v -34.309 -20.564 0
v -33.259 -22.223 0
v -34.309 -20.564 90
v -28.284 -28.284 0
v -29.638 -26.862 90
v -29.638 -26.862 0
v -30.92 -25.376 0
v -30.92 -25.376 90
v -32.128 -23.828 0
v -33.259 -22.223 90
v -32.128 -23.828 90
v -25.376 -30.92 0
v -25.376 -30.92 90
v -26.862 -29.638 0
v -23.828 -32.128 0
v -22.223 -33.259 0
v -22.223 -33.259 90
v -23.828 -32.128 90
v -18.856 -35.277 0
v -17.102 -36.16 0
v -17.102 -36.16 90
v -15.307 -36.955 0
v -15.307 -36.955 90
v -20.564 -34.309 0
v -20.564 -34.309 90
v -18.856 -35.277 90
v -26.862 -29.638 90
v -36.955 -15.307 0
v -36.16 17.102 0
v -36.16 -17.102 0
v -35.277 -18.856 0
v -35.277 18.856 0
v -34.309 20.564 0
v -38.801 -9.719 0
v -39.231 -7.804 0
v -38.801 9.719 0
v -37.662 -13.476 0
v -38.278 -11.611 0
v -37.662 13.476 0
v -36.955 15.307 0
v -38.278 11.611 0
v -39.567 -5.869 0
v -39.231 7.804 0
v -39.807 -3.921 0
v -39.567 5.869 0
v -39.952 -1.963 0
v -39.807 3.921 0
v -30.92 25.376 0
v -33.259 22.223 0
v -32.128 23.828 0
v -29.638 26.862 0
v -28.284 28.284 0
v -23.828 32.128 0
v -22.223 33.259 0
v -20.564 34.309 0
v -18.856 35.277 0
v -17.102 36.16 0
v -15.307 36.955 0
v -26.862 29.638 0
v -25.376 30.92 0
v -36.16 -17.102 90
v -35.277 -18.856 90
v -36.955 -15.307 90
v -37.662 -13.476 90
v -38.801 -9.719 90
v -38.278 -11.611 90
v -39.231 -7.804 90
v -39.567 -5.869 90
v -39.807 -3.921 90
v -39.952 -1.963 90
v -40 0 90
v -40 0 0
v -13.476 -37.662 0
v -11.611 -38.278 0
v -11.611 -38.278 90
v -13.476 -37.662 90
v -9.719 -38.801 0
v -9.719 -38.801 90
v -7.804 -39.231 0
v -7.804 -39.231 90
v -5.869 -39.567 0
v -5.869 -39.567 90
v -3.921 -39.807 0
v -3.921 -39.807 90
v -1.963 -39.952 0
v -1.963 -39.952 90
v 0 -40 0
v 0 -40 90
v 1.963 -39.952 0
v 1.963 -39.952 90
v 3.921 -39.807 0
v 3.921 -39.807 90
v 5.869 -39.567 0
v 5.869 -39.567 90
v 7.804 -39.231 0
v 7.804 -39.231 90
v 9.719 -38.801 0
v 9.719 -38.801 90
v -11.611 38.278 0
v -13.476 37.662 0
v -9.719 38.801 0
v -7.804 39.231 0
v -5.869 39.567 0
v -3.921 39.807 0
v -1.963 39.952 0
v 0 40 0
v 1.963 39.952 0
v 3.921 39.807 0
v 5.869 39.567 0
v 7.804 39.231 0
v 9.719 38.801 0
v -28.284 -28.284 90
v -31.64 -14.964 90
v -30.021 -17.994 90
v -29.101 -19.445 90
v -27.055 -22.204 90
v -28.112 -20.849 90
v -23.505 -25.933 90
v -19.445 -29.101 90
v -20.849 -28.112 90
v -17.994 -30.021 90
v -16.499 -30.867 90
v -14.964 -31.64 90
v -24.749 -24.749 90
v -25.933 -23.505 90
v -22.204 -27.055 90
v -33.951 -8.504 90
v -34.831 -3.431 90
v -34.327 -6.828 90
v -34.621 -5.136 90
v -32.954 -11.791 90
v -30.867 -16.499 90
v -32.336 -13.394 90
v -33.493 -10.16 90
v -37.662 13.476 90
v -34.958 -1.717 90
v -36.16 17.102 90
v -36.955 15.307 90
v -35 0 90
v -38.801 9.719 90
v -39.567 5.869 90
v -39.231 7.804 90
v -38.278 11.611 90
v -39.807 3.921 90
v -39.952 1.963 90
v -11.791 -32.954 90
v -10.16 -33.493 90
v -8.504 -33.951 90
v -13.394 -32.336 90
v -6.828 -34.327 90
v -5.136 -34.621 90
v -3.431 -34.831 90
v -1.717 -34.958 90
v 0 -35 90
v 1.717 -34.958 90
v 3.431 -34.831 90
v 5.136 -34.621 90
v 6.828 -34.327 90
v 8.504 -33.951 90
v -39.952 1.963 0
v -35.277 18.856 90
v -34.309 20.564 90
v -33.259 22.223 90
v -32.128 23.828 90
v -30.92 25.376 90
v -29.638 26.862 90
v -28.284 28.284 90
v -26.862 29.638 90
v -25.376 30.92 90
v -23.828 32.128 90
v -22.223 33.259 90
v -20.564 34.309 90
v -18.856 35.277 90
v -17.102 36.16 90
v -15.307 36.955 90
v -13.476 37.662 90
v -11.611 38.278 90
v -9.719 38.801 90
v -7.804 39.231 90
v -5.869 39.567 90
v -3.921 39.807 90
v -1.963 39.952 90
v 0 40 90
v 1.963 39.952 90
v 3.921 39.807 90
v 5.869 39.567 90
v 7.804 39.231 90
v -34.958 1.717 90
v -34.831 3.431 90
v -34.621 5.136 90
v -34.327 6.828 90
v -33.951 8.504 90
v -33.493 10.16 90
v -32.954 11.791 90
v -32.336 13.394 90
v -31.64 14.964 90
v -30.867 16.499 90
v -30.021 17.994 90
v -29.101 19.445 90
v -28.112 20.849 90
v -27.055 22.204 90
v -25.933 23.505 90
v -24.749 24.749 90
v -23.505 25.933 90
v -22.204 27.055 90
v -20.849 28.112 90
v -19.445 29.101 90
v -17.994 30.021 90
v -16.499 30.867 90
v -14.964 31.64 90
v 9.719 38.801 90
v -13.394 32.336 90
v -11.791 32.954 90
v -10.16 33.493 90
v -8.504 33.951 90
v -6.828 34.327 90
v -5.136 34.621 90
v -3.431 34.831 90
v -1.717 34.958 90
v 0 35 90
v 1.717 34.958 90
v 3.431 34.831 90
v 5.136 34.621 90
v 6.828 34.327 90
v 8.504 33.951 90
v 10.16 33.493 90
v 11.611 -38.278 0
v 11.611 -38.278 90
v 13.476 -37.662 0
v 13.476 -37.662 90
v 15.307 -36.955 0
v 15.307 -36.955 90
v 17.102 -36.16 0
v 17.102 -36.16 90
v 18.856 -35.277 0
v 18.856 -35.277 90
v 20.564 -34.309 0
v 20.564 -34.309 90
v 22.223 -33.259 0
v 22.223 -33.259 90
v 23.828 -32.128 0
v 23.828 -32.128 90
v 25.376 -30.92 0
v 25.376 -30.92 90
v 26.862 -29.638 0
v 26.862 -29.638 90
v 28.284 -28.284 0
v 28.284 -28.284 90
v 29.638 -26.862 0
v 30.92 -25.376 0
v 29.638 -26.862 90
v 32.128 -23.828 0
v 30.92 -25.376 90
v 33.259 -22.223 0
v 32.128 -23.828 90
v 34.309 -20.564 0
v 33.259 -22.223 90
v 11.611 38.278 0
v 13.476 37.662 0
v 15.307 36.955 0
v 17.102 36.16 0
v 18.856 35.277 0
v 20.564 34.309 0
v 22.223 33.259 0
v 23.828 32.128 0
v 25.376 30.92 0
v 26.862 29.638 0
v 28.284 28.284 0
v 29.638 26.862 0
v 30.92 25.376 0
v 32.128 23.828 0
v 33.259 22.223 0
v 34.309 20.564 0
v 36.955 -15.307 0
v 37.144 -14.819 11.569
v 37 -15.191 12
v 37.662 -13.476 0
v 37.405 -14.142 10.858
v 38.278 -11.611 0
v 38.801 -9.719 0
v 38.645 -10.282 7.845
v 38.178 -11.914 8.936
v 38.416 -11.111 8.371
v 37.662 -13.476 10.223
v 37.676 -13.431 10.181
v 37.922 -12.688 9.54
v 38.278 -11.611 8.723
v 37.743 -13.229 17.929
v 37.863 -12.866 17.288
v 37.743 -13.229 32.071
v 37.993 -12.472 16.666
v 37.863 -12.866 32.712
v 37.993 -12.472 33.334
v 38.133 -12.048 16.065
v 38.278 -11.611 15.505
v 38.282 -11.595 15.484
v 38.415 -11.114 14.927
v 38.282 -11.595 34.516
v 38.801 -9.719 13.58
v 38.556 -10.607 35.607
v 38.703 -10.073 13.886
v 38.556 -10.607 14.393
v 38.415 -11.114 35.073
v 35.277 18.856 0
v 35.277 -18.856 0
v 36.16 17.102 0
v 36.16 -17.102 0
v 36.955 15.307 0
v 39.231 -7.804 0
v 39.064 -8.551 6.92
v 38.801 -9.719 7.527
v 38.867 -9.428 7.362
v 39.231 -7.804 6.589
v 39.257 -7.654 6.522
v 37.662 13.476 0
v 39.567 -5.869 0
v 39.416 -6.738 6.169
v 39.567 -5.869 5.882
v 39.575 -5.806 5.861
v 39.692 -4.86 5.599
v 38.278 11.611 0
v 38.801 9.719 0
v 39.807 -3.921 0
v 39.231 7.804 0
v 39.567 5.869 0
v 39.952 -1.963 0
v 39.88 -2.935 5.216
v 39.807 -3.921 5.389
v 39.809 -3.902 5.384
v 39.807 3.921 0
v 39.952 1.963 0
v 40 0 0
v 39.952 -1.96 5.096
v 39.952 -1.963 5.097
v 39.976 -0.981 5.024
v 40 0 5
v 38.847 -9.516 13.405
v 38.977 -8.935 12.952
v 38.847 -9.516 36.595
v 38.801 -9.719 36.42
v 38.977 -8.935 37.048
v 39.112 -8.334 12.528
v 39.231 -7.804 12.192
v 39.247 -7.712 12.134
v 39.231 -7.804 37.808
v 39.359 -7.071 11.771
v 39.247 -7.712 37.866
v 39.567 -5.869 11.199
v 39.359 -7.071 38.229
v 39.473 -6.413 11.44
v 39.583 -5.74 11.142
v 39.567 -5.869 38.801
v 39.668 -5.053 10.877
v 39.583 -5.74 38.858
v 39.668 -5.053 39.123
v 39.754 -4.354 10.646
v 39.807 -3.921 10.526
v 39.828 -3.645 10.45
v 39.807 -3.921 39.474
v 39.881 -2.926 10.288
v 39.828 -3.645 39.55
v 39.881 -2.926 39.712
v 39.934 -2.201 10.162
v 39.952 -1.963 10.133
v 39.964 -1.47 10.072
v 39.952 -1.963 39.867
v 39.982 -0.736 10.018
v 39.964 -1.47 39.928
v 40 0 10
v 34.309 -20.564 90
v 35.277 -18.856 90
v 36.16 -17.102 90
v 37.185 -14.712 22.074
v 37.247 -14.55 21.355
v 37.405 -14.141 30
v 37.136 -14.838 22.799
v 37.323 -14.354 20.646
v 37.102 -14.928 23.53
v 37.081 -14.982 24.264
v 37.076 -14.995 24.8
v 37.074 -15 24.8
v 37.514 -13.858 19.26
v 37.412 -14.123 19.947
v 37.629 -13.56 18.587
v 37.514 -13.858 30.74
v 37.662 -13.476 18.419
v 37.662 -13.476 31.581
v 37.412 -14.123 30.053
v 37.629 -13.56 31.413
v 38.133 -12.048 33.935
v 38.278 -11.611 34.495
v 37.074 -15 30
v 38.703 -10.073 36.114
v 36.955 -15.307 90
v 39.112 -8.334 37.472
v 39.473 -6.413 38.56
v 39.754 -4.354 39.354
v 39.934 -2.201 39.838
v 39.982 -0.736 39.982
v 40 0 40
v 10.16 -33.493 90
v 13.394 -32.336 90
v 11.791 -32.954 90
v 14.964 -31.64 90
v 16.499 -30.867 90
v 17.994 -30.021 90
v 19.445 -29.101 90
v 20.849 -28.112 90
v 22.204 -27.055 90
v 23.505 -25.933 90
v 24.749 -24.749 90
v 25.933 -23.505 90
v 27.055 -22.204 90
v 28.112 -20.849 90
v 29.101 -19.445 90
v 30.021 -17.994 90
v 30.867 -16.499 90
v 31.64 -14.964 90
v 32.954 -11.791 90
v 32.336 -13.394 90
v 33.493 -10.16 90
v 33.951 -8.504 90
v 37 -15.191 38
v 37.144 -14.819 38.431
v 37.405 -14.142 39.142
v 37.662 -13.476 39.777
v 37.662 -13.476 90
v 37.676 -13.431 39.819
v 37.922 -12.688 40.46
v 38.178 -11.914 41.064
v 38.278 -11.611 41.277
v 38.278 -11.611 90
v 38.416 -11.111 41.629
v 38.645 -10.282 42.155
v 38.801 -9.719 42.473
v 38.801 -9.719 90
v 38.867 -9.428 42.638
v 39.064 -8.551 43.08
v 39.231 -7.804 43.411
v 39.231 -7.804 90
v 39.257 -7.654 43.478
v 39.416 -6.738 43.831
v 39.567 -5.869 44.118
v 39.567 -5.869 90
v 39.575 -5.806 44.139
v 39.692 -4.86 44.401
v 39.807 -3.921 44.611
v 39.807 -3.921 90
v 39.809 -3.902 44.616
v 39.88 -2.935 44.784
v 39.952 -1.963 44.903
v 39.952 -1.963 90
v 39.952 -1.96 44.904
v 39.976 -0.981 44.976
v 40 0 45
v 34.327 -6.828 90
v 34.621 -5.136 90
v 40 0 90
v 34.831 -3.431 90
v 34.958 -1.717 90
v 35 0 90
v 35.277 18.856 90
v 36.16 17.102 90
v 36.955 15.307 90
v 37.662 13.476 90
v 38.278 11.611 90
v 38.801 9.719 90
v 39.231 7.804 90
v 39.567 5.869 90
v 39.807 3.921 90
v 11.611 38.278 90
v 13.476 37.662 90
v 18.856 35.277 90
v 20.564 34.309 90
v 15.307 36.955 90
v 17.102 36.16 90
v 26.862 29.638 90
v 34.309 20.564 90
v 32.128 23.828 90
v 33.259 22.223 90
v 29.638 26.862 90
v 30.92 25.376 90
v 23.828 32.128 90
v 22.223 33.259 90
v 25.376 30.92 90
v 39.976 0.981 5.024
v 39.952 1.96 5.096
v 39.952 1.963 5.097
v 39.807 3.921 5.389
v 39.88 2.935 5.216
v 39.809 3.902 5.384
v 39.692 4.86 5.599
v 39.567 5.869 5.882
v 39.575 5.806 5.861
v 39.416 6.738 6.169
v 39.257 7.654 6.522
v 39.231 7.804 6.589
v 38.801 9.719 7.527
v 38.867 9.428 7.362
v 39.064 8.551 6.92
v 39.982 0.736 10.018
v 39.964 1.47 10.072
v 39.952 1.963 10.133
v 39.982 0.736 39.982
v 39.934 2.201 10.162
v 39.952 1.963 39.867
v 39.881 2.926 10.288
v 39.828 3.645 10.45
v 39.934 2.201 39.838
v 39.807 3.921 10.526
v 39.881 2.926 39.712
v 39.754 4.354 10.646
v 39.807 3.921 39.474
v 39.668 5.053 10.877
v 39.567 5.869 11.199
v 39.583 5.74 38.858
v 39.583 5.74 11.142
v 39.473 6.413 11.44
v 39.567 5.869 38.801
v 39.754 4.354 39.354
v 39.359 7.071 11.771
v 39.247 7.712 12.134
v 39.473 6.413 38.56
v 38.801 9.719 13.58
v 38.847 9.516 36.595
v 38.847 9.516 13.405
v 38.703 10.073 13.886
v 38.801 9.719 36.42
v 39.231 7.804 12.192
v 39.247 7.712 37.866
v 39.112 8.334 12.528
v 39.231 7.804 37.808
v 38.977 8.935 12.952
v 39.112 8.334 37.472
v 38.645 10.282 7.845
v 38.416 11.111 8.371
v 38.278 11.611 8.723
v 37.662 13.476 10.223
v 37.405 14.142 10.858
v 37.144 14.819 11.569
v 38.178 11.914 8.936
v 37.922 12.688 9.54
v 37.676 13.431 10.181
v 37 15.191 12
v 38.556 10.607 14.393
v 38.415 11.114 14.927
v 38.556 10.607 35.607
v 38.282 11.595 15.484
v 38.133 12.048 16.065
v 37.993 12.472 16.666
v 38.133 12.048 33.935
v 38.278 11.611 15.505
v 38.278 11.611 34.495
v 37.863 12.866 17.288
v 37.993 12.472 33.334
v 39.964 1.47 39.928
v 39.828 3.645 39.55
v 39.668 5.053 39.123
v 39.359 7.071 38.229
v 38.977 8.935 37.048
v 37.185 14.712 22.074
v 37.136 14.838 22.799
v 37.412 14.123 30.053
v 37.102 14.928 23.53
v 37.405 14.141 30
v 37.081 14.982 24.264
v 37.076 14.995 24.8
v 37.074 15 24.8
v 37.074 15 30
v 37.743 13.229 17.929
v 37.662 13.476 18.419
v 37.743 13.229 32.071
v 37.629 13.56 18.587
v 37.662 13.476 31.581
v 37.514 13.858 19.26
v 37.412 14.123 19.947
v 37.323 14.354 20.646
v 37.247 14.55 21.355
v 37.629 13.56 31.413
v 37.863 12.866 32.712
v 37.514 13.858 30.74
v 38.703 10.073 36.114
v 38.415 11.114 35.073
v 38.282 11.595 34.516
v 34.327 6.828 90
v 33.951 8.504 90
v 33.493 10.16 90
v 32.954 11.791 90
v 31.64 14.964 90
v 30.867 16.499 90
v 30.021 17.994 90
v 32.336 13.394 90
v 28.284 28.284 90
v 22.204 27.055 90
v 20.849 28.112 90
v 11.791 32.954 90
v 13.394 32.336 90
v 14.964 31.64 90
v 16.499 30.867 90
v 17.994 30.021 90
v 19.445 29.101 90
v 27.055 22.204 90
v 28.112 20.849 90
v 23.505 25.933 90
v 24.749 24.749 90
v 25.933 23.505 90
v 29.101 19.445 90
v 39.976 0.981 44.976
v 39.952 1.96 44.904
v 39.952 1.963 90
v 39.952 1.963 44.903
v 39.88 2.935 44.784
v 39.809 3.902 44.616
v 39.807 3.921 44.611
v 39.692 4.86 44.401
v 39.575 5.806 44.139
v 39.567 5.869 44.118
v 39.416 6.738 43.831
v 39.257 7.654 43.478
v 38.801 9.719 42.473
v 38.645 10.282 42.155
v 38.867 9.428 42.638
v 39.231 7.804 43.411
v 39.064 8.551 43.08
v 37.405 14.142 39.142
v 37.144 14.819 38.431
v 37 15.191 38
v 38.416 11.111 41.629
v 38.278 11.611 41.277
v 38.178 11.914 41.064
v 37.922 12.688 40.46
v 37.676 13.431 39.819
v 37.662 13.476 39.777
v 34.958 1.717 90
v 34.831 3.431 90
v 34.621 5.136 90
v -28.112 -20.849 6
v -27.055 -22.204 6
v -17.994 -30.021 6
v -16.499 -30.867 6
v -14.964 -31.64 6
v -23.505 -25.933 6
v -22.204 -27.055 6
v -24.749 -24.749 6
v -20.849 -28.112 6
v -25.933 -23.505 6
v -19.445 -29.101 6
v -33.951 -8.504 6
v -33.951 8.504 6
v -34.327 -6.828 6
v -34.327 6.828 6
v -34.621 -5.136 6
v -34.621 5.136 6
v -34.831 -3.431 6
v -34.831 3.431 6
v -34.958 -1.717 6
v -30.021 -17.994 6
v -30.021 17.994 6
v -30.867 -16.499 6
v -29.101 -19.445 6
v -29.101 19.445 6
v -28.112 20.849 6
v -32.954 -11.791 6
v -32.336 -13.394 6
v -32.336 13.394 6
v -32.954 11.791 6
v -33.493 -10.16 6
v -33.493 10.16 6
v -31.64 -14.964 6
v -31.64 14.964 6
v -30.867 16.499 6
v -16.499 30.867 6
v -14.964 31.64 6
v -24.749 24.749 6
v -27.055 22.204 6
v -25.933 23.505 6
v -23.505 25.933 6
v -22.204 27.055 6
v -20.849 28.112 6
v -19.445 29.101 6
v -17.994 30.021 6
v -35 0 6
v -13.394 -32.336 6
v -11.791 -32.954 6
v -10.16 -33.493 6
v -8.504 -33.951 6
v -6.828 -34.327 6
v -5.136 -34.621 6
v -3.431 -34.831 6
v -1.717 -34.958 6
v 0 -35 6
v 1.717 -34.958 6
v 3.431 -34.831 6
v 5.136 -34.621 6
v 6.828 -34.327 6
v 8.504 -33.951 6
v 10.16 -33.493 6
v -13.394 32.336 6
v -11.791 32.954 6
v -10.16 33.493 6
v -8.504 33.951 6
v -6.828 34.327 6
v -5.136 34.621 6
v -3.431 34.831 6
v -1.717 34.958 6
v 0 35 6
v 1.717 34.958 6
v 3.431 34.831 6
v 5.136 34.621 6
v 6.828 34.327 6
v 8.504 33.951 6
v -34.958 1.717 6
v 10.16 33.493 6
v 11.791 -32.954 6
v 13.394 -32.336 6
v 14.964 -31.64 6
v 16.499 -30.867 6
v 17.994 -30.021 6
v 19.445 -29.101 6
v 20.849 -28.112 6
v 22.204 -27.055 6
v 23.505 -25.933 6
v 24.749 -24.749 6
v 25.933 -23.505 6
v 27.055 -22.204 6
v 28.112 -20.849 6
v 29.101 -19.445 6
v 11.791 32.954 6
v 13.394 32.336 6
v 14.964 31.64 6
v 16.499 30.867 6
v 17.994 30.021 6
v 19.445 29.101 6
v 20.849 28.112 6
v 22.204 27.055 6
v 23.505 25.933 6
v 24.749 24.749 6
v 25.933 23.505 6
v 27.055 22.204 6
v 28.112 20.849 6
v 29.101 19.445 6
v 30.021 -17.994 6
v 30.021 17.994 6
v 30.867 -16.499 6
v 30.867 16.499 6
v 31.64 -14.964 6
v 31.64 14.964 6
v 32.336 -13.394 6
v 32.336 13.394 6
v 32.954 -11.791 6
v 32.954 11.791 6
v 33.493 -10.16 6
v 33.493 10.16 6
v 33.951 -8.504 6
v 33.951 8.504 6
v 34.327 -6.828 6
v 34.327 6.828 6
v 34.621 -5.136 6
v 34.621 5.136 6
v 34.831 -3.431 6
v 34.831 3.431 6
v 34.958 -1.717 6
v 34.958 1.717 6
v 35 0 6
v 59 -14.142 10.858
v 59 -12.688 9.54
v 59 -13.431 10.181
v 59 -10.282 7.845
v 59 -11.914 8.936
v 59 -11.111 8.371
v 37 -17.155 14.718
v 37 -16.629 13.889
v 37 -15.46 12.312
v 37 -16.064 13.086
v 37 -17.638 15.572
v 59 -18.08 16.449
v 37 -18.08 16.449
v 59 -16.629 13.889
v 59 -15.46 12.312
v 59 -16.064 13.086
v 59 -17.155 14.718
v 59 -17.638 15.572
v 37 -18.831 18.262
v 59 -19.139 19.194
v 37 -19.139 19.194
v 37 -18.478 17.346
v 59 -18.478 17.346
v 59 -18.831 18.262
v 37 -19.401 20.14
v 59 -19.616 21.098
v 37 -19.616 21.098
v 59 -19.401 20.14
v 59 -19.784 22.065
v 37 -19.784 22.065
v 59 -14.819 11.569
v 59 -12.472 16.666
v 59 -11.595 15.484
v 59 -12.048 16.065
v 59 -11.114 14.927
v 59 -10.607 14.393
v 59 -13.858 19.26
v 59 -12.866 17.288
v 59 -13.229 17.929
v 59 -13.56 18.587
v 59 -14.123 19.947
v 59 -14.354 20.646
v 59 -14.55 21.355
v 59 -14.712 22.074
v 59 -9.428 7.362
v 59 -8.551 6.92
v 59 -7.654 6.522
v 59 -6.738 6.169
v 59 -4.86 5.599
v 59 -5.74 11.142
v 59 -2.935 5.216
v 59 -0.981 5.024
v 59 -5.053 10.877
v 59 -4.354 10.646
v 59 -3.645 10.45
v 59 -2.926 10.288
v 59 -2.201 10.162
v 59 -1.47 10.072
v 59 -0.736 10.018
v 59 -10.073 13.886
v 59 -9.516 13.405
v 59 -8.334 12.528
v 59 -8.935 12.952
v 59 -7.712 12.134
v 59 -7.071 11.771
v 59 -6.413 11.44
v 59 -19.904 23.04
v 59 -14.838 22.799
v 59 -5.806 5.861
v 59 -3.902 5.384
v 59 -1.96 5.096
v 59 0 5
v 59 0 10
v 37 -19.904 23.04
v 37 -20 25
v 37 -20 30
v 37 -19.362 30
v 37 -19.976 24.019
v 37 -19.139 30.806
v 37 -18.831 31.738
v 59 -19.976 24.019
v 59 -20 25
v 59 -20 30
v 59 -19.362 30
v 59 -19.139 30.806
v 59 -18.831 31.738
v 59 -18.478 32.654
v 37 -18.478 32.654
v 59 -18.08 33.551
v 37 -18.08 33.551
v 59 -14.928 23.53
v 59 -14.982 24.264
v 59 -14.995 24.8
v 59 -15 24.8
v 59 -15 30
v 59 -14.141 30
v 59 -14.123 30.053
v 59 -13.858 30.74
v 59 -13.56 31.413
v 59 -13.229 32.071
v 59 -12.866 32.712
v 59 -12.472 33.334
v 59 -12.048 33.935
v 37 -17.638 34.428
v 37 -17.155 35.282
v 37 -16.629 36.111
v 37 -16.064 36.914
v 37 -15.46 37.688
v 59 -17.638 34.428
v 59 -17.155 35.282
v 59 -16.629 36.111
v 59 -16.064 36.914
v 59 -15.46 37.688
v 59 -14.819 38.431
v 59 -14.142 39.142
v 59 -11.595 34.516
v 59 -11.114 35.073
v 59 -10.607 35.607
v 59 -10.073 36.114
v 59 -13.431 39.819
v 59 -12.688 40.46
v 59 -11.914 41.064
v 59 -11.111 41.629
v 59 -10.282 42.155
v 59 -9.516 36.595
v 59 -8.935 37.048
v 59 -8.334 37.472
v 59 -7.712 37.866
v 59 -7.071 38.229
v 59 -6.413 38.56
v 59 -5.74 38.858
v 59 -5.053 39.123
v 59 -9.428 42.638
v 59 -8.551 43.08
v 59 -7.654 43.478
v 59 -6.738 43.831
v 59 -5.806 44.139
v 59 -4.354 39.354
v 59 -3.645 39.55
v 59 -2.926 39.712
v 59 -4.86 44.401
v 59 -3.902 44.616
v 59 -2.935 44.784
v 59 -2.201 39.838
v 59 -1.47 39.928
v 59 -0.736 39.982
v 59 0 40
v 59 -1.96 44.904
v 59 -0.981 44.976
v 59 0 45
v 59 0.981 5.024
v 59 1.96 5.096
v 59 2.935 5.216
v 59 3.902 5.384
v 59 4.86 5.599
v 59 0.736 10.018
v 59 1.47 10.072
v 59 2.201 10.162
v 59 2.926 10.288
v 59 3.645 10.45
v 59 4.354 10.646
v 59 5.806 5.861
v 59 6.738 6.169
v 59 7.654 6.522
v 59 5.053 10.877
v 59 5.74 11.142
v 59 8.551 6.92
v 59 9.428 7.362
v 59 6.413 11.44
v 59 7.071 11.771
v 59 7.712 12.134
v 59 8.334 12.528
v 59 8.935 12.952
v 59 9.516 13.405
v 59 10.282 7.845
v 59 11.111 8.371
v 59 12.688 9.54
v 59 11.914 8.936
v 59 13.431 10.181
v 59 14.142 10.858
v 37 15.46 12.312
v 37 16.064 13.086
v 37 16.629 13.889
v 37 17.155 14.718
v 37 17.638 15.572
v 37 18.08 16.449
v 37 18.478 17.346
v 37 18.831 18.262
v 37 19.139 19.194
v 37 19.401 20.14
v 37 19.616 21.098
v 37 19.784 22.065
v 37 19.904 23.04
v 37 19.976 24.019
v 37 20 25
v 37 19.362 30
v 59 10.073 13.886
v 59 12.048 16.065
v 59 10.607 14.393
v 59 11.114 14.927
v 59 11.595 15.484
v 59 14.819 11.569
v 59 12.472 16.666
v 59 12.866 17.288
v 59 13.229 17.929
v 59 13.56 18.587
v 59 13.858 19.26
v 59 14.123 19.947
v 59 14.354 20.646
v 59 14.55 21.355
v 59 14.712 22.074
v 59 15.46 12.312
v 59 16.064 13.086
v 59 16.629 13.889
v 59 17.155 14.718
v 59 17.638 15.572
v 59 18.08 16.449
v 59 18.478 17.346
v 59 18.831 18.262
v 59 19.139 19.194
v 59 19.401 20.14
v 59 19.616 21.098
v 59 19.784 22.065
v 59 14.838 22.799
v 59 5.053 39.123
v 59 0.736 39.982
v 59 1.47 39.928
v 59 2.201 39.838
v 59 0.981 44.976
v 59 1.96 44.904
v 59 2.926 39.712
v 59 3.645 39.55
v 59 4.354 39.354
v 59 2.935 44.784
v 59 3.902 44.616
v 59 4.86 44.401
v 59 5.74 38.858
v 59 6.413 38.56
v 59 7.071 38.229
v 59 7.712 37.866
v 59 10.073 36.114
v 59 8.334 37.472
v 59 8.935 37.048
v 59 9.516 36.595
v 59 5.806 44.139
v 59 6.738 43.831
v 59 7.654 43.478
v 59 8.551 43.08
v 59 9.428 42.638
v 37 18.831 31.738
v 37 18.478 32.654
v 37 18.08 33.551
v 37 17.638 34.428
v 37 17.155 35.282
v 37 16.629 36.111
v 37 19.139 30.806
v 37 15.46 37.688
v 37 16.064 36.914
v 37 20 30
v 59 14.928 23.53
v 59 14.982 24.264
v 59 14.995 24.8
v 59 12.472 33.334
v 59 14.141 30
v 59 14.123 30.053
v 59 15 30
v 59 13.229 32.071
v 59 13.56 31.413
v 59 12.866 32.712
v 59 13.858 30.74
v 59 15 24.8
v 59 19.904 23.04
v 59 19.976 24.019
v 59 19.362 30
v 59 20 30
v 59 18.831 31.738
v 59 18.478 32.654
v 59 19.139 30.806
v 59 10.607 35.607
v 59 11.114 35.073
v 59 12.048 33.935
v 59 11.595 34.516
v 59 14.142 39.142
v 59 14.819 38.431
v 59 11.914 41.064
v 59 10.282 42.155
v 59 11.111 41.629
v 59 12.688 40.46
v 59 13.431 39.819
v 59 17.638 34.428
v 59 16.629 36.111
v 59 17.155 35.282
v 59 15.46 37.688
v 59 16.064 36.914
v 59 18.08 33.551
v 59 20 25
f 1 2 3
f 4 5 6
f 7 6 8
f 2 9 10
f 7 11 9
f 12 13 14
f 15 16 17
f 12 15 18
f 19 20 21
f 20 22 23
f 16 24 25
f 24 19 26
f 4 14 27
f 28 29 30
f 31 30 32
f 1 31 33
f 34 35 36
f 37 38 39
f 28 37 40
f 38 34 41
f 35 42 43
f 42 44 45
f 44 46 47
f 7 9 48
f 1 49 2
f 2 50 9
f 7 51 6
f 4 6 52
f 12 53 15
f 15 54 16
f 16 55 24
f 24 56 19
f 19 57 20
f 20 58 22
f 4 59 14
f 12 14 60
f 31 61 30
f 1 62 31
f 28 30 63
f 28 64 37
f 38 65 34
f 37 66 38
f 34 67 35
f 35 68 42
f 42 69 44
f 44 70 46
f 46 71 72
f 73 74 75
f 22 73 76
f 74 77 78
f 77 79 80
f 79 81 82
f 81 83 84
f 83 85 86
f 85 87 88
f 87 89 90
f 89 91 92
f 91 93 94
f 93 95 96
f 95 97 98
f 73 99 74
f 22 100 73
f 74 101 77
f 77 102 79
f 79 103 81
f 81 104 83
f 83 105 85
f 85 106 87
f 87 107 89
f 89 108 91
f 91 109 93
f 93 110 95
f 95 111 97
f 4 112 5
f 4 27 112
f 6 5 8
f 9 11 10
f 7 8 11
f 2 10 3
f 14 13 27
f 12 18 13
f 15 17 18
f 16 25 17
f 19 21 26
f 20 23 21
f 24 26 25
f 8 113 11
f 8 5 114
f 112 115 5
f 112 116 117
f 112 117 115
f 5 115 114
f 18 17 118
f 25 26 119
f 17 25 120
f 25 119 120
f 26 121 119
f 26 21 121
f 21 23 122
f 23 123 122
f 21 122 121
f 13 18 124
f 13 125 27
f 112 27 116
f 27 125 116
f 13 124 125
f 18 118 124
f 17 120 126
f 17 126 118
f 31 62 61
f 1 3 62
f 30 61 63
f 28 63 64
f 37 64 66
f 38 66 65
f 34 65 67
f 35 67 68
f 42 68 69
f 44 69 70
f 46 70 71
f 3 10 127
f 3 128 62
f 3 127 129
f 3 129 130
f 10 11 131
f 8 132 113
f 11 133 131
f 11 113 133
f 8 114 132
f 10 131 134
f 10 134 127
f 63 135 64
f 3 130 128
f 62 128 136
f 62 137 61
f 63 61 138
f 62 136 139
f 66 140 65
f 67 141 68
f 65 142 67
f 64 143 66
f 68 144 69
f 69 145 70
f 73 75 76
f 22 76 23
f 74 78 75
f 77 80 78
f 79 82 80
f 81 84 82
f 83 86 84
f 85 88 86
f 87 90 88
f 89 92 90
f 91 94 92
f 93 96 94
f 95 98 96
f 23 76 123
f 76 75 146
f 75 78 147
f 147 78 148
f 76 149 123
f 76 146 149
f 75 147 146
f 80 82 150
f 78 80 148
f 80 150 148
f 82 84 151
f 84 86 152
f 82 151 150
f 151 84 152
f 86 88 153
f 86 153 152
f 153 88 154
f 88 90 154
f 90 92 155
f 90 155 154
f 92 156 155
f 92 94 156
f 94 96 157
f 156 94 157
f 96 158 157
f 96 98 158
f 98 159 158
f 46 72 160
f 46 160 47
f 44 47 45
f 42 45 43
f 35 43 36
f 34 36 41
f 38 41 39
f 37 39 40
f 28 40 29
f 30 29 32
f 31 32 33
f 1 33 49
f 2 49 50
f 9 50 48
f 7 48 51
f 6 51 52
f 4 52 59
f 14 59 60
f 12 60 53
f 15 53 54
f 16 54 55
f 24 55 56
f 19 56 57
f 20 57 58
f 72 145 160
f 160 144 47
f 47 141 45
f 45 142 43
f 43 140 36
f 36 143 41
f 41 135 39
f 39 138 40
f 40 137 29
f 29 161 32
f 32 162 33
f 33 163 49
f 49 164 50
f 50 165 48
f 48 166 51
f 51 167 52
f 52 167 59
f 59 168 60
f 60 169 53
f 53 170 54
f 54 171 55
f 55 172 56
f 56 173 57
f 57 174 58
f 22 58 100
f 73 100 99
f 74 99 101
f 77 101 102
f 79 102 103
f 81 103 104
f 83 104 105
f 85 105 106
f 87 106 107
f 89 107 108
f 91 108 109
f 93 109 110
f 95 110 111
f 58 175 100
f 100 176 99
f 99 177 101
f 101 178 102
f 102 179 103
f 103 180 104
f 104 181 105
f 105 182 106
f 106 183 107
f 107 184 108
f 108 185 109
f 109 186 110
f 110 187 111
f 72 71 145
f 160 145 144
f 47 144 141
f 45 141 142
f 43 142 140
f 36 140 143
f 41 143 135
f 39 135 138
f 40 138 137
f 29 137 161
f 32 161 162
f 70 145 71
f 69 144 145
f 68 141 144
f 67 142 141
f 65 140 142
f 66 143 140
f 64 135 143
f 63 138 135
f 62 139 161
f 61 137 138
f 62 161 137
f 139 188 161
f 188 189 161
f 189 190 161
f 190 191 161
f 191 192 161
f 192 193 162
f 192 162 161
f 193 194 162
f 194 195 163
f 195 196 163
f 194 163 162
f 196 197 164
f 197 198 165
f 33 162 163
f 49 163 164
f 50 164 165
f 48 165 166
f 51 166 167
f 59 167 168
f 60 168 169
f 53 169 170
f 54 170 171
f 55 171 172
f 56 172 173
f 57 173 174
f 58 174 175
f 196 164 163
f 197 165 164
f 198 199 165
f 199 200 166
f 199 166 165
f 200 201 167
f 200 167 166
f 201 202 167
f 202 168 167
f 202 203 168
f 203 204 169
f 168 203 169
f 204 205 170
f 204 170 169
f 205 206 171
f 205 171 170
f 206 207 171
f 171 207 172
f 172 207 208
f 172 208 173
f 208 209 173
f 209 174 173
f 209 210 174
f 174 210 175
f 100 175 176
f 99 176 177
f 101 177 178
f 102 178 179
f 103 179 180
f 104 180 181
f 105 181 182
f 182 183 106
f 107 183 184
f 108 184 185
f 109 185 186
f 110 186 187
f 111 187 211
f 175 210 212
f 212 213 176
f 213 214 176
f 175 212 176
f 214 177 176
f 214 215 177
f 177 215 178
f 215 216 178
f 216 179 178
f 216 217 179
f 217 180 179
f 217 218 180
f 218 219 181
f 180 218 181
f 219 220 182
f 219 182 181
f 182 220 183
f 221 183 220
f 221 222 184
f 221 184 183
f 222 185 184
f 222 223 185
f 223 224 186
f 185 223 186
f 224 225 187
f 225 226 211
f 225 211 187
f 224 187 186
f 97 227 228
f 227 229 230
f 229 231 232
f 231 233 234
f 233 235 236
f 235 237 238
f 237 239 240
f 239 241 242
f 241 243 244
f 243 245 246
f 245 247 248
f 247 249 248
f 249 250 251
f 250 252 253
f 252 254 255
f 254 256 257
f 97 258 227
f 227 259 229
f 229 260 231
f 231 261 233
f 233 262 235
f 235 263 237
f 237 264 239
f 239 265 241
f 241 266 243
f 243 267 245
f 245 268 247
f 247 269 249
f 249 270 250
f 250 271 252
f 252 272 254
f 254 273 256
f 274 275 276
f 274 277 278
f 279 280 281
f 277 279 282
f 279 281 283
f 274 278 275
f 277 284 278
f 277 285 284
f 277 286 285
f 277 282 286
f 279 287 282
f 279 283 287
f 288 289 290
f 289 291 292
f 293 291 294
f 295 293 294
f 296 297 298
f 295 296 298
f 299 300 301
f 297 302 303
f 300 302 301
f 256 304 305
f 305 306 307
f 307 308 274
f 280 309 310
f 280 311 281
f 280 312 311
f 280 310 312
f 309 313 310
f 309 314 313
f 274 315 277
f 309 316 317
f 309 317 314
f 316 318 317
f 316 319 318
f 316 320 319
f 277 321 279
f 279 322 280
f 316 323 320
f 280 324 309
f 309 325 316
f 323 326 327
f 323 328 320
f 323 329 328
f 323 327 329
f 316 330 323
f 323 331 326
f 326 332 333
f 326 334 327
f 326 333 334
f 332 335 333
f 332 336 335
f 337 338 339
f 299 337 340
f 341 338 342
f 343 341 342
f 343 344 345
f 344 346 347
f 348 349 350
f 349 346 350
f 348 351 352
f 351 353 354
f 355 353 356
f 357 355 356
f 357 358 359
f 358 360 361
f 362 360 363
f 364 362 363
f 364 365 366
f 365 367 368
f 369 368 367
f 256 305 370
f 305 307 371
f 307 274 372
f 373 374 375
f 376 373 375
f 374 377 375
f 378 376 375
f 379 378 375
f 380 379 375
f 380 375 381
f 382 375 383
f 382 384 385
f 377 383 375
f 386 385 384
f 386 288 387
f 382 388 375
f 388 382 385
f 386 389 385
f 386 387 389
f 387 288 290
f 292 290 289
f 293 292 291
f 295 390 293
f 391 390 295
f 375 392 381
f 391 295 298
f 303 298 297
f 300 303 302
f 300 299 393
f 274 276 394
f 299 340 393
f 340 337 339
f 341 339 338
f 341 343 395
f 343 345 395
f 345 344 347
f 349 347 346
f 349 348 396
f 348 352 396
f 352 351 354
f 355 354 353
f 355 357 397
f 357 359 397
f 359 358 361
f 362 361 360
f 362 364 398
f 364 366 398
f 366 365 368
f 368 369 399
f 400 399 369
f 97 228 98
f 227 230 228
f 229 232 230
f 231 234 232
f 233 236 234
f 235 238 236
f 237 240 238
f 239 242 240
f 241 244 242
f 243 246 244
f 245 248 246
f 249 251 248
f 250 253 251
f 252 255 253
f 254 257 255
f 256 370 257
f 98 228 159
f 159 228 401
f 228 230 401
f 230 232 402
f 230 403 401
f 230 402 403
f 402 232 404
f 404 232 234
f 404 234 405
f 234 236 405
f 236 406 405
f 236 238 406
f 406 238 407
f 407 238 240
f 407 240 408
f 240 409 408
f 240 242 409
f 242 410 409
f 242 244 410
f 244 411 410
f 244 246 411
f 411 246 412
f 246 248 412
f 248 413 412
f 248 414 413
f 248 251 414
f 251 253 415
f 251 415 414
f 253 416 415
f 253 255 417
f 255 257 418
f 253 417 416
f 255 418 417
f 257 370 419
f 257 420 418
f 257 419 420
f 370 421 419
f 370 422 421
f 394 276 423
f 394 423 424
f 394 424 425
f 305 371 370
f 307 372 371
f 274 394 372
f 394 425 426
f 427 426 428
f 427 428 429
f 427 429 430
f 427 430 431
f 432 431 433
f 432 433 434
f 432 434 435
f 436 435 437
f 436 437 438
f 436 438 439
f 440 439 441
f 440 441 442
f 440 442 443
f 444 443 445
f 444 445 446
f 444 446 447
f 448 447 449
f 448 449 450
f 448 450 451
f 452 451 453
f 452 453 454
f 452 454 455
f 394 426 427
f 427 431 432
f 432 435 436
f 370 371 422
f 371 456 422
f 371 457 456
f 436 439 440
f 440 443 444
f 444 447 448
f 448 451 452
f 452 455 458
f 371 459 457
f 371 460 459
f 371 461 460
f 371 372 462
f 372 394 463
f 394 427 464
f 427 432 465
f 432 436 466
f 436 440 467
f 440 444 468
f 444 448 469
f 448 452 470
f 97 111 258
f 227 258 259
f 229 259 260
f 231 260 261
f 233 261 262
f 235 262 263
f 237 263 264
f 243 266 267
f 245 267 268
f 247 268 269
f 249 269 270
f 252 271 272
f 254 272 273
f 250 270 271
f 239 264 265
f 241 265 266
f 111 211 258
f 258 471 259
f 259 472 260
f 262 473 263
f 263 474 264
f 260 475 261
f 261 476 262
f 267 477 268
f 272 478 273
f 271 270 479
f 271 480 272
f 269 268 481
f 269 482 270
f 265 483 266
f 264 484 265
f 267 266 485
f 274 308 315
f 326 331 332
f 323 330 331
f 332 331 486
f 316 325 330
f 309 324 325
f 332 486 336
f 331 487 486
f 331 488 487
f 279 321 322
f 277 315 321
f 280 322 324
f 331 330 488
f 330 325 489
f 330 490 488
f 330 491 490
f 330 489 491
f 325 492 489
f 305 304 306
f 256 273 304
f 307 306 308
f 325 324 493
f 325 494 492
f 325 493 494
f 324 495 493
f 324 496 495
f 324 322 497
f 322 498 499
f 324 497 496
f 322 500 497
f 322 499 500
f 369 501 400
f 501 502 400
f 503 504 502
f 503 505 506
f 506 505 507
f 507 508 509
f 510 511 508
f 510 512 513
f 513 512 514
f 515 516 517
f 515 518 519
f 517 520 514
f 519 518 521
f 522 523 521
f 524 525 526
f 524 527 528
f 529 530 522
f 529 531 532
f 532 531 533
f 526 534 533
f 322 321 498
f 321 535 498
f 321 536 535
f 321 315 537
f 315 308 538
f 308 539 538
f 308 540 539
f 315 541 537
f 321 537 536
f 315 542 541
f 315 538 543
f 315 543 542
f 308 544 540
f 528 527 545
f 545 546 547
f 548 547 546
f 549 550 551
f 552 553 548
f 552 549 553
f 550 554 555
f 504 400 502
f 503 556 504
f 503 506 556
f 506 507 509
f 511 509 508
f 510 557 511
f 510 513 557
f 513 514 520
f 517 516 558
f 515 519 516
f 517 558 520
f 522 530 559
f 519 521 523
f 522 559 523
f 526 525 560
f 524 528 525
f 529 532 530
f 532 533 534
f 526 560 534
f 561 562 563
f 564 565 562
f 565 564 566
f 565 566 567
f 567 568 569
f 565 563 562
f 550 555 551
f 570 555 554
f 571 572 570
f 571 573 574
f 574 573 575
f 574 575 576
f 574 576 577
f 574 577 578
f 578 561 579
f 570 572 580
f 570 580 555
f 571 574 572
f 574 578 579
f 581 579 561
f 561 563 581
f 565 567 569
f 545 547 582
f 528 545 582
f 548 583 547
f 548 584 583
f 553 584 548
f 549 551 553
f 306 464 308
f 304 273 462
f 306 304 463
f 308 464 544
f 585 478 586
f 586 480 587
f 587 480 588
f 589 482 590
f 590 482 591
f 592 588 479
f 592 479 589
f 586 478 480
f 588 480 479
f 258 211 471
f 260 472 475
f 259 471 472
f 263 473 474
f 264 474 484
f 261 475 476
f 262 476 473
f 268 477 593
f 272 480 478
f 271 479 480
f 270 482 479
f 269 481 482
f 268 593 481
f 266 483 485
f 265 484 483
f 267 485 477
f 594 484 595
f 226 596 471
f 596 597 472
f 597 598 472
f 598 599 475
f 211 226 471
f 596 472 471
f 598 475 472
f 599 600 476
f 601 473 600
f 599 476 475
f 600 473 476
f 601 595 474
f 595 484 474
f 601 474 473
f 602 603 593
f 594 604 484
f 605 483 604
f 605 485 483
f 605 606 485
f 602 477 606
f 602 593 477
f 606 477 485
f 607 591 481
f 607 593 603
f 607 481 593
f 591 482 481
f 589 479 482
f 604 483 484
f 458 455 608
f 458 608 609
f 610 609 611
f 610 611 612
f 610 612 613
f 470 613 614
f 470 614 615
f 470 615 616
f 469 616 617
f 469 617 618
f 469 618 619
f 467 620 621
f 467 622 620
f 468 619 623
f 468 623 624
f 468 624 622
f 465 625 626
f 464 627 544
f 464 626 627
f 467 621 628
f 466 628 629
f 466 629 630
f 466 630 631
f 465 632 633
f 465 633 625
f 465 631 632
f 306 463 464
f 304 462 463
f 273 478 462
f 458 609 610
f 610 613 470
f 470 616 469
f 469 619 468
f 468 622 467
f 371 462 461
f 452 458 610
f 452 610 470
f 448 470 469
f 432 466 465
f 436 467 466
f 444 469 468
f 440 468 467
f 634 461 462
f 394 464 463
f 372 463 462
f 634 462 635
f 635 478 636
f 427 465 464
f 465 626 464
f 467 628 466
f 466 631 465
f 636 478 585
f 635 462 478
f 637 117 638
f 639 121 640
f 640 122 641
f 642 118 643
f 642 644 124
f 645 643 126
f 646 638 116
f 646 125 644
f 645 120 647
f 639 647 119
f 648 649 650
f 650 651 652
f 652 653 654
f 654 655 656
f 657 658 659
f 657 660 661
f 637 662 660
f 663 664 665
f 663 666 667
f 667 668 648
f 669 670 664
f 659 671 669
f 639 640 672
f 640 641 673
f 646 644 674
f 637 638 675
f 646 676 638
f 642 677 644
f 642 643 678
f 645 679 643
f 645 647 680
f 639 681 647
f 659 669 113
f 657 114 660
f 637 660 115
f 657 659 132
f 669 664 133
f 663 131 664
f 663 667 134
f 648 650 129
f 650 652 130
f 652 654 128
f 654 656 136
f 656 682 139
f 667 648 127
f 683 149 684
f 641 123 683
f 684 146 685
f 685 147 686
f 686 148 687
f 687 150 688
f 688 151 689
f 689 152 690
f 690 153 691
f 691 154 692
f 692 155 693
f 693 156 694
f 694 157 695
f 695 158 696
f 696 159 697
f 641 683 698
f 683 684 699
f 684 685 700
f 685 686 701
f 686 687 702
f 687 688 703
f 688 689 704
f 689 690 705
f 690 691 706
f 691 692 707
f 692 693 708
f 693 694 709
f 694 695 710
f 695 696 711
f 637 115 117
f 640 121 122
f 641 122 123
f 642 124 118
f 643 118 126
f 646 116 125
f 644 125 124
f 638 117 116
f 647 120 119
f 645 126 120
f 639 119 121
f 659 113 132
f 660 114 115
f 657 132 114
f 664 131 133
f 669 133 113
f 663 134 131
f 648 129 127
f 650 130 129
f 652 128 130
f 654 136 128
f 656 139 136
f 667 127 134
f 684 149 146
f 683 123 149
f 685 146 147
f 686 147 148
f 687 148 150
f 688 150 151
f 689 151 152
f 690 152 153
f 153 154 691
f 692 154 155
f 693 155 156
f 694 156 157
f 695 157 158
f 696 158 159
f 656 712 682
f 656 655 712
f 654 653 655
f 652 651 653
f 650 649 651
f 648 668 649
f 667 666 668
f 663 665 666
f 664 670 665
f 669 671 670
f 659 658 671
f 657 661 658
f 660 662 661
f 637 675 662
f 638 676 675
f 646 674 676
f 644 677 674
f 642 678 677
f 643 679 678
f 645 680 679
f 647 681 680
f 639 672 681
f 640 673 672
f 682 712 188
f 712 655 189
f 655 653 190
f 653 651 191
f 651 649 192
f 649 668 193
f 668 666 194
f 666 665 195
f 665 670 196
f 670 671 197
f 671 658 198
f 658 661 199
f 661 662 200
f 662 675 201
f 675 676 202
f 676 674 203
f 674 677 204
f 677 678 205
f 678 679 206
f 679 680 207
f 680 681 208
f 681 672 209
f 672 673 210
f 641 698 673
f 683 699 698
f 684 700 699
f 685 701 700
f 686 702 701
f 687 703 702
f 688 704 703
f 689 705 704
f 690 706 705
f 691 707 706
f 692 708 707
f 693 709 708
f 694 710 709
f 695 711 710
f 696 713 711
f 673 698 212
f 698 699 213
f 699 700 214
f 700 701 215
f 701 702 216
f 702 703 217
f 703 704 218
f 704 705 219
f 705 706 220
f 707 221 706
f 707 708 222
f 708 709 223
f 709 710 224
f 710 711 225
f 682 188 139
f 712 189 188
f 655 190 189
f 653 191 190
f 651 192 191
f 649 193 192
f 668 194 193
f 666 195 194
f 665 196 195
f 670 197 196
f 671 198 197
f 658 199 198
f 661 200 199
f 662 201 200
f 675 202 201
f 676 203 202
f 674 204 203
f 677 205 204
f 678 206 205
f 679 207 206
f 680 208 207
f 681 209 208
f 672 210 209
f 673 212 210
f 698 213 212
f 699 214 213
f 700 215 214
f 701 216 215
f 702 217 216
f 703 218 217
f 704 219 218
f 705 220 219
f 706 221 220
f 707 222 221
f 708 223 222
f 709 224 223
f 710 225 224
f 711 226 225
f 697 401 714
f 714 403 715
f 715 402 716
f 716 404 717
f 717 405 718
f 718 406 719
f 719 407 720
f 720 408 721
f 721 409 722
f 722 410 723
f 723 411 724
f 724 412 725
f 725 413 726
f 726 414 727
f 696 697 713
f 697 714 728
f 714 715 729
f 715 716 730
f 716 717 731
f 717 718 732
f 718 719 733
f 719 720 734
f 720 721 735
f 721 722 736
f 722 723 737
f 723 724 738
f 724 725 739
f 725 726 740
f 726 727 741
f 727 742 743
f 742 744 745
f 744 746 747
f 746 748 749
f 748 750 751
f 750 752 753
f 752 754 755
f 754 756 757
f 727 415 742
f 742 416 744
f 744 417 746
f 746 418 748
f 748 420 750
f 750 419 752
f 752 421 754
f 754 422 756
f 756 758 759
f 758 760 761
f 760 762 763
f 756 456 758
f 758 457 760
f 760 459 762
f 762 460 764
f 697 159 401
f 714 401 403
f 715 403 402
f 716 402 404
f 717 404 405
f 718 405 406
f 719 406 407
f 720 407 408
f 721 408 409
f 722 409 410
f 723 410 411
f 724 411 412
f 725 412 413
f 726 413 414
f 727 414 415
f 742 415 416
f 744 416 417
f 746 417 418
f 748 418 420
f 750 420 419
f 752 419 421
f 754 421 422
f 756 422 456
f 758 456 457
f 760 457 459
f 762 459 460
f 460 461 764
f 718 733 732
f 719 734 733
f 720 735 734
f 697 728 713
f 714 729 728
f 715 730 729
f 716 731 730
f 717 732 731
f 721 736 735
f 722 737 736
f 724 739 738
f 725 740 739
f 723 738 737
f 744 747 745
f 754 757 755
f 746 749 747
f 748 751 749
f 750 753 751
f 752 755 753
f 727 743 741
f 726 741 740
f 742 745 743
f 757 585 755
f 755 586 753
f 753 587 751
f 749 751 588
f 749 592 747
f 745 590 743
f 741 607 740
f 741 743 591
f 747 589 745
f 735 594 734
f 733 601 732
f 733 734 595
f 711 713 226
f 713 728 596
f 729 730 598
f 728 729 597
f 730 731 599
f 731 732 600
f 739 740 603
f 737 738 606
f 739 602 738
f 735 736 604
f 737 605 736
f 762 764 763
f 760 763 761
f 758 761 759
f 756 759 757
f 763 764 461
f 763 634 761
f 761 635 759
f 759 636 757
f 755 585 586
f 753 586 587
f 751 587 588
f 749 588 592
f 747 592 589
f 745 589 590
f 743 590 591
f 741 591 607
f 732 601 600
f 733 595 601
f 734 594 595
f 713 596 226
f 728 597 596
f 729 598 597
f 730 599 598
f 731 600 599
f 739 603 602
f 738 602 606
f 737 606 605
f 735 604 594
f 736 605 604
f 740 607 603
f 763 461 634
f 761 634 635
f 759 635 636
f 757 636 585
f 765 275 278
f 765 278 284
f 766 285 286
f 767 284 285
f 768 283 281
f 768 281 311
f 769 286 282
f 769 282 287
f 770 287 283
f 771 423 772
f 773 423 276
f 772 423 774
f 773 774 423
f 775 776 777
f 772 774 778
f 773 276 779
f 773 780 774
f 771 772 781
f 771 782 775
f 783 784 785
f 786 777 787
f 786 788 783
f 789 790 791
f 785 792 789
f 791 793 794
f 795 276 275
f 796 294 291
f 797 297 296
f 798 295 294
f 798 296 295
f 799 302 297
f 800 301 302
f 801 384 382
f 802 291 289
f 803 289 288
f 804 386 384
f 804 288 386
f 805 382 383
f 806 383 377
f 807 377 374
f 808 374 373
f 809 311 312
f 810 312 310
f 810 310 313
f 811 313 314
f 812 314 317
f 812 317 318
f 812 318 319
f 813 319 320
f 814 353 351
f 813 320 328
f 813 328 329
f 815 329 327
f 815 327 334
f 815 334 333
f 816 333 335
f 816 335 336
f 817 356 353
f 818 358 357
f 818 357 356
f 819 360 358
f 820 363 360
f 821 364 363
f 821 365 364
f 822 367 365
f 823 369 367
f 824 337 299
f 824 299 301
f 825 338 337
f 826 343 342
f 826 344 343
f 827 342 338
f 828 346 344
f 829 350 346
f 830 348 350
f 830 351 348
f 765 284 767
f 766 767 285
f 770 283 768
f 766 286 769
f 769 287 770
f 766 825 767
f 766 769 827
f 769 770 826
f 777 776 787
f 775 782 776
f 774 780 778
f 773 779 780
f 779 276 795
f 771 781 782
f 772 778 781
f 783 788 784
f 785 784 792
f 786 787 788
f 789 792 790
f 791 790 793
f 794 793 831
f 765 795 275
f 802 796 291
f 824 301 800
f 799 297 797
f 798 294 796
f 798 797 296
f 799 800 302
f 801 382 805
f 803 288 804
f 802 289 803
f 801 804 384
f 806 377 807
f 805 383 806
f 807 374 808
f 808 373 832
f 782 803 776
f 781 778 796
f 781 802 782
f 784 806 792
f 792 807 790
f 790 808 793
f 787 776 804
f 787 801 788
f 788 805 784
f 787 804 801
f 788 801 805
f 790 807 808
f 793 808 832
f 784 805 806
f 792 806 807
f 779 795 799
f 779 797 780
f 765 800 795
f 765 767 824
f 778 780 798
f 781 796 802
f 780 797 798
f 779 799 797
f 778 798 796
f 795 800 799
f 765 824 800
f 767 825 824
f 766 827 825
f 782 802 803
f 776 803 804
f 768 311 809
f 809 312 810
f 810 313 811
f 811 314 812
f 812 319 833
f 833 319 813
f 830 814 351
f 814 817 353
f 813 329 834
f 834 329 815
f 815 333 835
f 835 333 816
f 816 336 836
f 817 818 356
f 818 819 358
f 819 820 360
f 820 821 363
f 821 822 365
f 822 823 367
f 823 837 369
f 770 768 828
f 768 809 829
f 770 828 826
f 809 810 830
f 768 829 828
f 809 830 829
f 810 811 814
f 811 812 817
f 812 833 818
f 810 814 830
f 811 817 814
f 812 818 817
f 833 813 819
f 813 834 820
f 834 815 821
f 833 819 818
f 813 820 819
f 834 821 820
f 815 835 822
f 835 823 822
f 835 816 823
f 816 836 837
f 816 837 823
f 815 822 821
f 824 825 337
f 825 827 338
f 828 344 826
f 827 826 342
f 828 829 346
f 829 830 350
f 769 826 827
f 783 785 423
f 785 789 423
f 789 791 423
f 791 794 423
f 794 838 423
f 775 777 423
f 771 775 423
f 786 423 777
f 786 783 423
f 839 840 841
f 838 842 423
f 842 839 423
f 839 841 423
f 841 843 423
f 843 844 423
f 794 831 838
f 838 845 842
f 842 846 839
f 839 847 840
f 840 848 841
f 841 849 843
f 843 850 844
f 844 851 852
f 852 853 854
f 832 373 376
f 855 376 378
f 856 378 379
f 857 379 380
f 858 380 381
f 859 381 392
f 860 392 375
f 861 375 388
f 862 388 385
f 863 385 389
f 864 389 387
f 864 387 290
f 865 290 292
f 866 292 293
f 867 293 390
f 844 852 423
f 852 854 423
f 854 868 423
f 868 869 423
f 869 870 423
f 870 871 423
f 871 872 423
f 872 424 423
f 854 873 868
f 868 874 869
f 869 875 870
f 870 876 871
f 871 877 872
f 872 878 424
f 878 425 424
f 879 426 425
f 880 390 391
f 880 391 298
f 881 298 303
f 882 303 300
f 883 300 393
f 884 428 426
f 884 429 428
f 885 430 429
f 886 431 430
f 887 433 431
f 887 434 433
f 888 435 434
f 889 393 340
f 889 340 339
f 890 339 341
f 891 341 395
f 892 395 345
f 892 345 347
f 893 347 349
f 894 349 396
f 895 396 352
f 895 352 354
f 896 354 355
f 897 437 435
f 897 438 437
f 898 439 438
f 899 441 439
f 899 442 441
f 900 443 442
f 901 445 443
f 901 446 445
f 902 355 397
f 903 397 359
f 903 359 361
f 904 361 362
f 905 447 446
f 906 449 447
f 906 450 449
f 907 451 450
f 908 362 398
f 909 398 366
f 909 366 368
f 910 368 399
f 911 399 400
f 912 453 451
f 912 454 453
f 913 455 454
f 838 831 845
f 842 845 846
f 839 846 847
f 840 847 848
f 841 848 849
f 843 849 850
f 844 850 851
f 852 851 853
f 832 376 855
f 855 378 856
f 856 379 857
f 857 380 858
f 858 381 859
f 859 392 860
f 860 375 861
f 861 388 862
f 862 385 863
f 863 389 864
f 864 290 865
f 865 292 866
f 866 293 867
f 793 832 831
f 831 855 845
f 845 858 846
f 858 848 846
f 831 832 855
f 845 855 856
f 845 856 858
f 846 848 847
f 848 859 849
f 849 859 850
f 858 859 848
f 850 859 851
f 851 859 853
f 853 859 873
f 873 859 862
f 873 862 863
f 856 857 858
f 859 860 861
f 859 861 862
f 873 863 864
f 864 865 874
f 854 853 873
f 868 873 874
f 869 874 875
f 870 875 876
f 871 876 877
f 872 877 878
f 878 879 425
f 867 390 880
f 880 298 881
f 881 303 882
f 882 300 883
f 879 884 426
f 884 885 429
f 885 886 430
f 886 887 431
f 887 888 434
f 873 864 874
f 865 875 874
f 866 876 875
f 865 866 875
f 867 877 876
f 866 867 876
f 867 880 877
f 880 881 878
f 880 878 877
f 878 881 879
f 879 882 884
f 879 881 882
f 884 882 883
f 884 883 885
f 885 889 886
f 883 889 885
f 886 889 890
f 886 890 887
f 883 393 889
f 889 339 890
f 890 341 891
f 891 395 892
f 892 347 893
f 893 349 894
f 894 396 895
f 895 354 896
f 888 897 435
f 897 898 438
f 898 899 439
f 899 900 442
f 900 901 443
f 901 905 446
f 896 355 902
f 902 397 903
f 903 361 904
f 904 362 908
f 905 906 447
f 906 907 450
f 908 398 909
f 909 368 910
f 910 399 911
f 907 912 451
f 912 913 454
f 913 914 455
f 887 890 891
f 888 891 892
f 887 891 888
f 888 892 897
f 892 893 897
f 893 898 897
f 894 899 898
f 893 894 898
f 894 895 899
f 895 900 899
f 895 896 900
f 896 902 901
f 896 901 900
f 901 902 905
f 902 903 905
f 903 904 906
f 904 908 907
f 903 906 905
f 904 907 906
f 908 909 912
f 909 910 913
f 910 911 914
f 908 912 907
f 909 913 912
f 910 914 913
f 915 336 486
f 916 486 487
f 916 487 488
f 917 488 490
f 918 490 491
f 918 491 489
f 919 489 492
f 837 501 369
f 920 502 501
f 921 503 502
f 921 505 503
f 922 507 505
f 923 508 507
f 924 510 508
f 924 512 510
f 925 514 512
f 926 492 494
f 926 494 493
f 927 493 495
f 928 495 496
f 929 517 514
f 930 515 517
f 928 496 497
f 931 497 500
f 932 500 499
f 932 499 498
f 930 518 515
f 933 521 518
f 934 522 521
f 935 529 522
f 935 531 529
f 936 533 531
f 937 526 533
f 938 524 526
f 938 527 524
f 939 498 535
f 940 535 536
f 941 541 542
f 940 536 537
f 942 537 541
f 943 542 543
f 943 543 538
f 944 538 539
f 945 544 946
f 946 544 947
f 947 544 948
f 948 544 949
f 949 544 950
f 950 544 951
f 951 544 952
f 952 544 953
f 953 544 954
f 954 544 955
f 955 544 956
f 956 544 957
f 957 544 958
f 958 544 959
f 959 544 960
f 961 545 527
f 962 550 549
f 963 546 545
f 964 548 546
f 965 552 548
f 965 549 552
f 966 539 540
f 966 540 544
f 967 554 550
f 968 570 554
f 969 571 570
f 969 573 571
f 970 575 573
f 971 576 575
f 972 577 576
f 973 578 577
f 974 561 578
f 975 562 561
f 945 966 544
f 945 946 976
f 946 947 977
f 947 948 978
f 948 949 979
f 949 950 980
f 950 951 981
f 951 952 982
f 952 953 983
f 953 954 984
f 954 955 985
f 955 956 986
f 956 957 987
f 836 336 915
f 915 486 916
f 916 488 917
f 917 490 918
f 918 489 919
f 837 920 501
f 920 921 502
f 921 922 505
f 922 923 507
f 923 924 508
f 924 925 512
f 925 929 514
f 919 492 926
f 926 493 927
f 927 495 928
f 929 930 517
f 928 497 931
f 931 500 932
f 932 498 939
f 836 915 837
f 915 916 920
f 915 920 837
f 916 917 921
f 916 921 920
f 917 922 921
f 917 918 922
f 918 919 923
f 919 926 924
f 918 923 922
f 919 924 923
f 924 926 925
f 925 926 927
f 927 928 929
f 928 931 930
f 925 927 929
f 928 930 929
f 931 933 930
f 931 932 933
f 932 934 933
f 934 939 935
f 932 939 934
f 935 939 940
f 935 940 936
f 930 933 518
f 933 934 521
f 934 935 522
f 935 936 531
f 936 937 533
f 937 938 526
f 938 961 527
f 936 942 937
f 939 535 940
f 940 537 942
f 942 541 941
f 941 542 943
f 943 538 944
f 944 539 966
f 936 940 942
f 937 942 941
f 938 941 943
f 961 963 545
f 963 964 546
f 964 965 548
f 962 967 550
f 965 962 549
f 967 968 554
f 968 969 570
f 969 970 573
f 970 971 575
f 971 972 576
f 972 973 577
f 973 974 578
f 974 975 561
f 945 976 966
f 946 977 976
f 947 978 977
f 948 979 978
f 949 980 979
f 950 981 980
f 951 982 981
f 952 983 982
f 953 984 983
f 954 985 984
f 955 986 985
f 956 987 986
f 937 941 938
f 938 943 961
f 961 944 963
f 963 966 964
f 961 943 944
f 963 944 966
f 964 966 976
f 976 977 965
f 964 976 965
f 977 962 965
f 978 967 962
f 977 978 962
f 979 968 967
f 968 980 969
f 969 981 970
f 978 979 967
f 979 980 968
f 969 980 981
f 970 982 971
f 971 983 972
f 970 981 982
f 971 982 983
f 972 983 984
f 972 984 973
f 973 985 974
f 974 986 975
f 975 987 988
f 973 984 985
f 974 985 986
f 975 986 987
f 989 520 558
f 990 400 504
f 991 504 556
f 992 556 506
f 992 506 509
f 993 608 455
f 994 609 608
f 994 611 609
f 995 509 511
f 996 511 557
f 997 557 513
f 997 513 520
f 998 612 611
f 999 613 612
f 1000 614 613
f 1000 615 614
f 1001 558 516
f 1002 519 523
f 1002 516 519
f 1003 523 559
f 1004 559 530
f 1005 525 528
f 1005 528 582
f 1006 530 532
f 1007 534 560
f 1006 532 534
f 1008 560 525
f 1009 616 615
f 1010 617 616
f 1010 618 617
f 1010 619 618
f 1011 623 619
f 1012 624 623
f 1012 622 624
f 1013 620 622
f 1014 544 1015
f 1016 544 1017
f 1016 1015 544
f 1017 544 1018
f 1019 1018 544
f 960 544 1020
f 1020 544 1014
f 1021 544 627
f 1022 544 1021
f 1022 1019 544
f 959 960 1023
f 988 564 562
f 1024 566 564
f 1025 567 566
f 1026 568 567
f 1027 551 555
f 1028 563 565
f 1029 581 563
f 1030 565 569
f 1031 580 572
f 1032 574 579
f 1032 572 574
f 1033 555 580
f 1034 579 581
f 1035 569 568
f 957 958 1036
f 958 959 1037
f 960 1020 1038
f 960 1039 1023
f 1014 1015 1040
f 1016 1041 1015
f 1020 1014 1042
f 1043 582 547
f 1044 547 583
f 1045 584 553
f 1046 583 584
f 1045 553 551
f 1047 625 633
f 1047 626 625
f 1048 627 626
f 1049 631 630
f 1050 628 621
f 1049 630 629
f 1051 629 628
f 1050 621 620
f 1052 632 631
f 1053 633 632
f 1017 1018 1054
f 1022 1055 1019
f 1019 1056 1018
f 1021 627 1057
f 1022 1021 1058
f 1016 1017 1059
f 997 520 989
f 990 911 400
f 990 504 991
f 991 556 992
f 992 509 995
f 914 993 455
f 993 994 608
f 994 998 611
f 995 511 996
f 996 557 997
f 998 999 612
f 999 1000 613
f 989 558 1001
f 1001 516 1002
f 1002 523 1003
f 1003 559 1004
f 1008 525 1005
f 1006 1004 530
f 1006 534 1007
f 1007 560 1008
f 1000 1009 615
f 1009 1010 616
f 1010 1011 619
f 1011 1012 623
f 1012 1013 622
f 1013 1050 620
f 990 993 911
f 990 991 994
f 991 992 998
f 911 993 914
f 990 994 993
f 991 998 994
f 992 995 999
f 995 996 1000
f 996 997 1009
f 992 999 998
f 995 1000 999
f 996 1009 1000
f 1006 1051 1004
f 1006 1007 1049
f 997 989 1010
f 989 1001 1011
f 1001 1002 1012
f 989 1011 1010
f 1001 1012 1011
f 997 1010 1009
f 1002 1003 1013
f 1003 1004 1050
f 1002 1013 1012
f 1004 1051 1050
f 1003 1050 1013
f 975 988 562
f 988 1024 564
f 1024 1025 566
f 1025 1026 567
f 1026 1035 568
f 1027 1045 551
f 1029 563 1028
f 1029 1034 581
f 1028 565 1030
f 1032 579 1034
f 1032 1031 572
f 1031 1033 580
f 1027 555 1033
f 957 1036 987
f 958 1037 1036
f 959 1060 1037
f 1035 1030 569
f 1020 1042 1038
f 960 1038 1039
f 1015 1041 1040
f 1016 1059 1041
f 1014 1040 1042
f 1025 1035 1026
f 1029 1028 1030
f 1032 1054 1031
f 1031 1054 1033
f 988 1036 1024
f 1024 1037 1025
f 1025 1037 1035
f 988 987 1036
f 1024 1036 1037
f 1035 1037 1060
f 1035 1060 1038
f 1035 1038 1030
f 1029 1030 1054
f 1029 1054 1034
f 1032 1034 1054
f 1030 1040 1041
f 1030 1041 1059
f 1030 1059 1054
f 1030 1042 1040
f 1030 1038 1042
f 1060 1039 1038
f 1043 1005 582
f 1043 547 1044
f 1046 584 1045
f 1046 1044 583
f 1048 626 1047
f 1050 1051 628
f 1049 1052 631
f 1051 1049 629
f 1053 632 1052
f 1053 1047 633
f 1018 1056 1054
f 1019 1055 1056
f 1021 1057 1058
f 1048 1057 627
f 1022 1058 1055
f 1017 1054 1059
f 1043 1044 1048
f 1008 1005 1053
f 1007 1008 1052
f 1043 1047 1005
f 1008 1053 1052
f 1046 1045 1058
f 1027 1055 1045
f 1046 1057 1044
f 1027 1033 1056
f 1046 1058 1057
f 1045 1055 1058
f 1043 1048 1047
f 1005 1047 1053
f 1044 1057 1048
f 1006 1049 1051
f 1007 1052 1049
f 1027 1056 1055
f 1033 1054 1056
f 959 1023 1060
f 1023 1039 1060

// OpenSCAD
$fn = 128;

outer_d = 80;
inner_d = 70;
height = 90;
bottom_thickness = 6;

handle_clear_w = 25;
handle_clear_h = 30;
handle_wall = 5;
handle_depth = 22;          // radial extent from body toward outside
handle_embed = 3;           // overlap into body for robust union

module mug_body() {
    difference() {
        cylinder(h = height, d = outer_d);
        translate([0, 0, bottom_thickness])
            cylinder(h = height - bottom_thickness + 0.1, d = inner_d);
    }
}

module handle_solid() {
    // Create a D-shaped cross section in the YZ plane and extrude along +X.
    // Flat side is toward the mug body, curved side outward.
    translate([outer_d/2 - handle_embed, 0, height/2 - handle_clear_h/2])
        rotate([0, 90, 0])
        linear_extrude(height = handle_depth)
        difference() {
            union() {
                // Outer boundary: flat-backed rectangle + semicircle
                translate([0, -(handle_clear_h/2 + handle_wall)])
                    square([handle_wall, handle_clear_h + 2*handle_wall], center = false);
                translate([handle_wall, 0])
                    circle(r = handle_clear_h/2 + handle_wall);
            }

            // Inner void: 25mm wide x 30mm high
            union() {
                translate([0, -handle_clear_h/2])
                    square([handle_wall + 0.2, handle_clear_h], center = false);
                translate([handle_wall, 0])
                    circle(r = handle_clear_h/2);
            }
        }
}

union() {
    mug_body();

    // Handle only on the +X side, centered vertically, with guaranteed overlap
    handle_solid();
}
